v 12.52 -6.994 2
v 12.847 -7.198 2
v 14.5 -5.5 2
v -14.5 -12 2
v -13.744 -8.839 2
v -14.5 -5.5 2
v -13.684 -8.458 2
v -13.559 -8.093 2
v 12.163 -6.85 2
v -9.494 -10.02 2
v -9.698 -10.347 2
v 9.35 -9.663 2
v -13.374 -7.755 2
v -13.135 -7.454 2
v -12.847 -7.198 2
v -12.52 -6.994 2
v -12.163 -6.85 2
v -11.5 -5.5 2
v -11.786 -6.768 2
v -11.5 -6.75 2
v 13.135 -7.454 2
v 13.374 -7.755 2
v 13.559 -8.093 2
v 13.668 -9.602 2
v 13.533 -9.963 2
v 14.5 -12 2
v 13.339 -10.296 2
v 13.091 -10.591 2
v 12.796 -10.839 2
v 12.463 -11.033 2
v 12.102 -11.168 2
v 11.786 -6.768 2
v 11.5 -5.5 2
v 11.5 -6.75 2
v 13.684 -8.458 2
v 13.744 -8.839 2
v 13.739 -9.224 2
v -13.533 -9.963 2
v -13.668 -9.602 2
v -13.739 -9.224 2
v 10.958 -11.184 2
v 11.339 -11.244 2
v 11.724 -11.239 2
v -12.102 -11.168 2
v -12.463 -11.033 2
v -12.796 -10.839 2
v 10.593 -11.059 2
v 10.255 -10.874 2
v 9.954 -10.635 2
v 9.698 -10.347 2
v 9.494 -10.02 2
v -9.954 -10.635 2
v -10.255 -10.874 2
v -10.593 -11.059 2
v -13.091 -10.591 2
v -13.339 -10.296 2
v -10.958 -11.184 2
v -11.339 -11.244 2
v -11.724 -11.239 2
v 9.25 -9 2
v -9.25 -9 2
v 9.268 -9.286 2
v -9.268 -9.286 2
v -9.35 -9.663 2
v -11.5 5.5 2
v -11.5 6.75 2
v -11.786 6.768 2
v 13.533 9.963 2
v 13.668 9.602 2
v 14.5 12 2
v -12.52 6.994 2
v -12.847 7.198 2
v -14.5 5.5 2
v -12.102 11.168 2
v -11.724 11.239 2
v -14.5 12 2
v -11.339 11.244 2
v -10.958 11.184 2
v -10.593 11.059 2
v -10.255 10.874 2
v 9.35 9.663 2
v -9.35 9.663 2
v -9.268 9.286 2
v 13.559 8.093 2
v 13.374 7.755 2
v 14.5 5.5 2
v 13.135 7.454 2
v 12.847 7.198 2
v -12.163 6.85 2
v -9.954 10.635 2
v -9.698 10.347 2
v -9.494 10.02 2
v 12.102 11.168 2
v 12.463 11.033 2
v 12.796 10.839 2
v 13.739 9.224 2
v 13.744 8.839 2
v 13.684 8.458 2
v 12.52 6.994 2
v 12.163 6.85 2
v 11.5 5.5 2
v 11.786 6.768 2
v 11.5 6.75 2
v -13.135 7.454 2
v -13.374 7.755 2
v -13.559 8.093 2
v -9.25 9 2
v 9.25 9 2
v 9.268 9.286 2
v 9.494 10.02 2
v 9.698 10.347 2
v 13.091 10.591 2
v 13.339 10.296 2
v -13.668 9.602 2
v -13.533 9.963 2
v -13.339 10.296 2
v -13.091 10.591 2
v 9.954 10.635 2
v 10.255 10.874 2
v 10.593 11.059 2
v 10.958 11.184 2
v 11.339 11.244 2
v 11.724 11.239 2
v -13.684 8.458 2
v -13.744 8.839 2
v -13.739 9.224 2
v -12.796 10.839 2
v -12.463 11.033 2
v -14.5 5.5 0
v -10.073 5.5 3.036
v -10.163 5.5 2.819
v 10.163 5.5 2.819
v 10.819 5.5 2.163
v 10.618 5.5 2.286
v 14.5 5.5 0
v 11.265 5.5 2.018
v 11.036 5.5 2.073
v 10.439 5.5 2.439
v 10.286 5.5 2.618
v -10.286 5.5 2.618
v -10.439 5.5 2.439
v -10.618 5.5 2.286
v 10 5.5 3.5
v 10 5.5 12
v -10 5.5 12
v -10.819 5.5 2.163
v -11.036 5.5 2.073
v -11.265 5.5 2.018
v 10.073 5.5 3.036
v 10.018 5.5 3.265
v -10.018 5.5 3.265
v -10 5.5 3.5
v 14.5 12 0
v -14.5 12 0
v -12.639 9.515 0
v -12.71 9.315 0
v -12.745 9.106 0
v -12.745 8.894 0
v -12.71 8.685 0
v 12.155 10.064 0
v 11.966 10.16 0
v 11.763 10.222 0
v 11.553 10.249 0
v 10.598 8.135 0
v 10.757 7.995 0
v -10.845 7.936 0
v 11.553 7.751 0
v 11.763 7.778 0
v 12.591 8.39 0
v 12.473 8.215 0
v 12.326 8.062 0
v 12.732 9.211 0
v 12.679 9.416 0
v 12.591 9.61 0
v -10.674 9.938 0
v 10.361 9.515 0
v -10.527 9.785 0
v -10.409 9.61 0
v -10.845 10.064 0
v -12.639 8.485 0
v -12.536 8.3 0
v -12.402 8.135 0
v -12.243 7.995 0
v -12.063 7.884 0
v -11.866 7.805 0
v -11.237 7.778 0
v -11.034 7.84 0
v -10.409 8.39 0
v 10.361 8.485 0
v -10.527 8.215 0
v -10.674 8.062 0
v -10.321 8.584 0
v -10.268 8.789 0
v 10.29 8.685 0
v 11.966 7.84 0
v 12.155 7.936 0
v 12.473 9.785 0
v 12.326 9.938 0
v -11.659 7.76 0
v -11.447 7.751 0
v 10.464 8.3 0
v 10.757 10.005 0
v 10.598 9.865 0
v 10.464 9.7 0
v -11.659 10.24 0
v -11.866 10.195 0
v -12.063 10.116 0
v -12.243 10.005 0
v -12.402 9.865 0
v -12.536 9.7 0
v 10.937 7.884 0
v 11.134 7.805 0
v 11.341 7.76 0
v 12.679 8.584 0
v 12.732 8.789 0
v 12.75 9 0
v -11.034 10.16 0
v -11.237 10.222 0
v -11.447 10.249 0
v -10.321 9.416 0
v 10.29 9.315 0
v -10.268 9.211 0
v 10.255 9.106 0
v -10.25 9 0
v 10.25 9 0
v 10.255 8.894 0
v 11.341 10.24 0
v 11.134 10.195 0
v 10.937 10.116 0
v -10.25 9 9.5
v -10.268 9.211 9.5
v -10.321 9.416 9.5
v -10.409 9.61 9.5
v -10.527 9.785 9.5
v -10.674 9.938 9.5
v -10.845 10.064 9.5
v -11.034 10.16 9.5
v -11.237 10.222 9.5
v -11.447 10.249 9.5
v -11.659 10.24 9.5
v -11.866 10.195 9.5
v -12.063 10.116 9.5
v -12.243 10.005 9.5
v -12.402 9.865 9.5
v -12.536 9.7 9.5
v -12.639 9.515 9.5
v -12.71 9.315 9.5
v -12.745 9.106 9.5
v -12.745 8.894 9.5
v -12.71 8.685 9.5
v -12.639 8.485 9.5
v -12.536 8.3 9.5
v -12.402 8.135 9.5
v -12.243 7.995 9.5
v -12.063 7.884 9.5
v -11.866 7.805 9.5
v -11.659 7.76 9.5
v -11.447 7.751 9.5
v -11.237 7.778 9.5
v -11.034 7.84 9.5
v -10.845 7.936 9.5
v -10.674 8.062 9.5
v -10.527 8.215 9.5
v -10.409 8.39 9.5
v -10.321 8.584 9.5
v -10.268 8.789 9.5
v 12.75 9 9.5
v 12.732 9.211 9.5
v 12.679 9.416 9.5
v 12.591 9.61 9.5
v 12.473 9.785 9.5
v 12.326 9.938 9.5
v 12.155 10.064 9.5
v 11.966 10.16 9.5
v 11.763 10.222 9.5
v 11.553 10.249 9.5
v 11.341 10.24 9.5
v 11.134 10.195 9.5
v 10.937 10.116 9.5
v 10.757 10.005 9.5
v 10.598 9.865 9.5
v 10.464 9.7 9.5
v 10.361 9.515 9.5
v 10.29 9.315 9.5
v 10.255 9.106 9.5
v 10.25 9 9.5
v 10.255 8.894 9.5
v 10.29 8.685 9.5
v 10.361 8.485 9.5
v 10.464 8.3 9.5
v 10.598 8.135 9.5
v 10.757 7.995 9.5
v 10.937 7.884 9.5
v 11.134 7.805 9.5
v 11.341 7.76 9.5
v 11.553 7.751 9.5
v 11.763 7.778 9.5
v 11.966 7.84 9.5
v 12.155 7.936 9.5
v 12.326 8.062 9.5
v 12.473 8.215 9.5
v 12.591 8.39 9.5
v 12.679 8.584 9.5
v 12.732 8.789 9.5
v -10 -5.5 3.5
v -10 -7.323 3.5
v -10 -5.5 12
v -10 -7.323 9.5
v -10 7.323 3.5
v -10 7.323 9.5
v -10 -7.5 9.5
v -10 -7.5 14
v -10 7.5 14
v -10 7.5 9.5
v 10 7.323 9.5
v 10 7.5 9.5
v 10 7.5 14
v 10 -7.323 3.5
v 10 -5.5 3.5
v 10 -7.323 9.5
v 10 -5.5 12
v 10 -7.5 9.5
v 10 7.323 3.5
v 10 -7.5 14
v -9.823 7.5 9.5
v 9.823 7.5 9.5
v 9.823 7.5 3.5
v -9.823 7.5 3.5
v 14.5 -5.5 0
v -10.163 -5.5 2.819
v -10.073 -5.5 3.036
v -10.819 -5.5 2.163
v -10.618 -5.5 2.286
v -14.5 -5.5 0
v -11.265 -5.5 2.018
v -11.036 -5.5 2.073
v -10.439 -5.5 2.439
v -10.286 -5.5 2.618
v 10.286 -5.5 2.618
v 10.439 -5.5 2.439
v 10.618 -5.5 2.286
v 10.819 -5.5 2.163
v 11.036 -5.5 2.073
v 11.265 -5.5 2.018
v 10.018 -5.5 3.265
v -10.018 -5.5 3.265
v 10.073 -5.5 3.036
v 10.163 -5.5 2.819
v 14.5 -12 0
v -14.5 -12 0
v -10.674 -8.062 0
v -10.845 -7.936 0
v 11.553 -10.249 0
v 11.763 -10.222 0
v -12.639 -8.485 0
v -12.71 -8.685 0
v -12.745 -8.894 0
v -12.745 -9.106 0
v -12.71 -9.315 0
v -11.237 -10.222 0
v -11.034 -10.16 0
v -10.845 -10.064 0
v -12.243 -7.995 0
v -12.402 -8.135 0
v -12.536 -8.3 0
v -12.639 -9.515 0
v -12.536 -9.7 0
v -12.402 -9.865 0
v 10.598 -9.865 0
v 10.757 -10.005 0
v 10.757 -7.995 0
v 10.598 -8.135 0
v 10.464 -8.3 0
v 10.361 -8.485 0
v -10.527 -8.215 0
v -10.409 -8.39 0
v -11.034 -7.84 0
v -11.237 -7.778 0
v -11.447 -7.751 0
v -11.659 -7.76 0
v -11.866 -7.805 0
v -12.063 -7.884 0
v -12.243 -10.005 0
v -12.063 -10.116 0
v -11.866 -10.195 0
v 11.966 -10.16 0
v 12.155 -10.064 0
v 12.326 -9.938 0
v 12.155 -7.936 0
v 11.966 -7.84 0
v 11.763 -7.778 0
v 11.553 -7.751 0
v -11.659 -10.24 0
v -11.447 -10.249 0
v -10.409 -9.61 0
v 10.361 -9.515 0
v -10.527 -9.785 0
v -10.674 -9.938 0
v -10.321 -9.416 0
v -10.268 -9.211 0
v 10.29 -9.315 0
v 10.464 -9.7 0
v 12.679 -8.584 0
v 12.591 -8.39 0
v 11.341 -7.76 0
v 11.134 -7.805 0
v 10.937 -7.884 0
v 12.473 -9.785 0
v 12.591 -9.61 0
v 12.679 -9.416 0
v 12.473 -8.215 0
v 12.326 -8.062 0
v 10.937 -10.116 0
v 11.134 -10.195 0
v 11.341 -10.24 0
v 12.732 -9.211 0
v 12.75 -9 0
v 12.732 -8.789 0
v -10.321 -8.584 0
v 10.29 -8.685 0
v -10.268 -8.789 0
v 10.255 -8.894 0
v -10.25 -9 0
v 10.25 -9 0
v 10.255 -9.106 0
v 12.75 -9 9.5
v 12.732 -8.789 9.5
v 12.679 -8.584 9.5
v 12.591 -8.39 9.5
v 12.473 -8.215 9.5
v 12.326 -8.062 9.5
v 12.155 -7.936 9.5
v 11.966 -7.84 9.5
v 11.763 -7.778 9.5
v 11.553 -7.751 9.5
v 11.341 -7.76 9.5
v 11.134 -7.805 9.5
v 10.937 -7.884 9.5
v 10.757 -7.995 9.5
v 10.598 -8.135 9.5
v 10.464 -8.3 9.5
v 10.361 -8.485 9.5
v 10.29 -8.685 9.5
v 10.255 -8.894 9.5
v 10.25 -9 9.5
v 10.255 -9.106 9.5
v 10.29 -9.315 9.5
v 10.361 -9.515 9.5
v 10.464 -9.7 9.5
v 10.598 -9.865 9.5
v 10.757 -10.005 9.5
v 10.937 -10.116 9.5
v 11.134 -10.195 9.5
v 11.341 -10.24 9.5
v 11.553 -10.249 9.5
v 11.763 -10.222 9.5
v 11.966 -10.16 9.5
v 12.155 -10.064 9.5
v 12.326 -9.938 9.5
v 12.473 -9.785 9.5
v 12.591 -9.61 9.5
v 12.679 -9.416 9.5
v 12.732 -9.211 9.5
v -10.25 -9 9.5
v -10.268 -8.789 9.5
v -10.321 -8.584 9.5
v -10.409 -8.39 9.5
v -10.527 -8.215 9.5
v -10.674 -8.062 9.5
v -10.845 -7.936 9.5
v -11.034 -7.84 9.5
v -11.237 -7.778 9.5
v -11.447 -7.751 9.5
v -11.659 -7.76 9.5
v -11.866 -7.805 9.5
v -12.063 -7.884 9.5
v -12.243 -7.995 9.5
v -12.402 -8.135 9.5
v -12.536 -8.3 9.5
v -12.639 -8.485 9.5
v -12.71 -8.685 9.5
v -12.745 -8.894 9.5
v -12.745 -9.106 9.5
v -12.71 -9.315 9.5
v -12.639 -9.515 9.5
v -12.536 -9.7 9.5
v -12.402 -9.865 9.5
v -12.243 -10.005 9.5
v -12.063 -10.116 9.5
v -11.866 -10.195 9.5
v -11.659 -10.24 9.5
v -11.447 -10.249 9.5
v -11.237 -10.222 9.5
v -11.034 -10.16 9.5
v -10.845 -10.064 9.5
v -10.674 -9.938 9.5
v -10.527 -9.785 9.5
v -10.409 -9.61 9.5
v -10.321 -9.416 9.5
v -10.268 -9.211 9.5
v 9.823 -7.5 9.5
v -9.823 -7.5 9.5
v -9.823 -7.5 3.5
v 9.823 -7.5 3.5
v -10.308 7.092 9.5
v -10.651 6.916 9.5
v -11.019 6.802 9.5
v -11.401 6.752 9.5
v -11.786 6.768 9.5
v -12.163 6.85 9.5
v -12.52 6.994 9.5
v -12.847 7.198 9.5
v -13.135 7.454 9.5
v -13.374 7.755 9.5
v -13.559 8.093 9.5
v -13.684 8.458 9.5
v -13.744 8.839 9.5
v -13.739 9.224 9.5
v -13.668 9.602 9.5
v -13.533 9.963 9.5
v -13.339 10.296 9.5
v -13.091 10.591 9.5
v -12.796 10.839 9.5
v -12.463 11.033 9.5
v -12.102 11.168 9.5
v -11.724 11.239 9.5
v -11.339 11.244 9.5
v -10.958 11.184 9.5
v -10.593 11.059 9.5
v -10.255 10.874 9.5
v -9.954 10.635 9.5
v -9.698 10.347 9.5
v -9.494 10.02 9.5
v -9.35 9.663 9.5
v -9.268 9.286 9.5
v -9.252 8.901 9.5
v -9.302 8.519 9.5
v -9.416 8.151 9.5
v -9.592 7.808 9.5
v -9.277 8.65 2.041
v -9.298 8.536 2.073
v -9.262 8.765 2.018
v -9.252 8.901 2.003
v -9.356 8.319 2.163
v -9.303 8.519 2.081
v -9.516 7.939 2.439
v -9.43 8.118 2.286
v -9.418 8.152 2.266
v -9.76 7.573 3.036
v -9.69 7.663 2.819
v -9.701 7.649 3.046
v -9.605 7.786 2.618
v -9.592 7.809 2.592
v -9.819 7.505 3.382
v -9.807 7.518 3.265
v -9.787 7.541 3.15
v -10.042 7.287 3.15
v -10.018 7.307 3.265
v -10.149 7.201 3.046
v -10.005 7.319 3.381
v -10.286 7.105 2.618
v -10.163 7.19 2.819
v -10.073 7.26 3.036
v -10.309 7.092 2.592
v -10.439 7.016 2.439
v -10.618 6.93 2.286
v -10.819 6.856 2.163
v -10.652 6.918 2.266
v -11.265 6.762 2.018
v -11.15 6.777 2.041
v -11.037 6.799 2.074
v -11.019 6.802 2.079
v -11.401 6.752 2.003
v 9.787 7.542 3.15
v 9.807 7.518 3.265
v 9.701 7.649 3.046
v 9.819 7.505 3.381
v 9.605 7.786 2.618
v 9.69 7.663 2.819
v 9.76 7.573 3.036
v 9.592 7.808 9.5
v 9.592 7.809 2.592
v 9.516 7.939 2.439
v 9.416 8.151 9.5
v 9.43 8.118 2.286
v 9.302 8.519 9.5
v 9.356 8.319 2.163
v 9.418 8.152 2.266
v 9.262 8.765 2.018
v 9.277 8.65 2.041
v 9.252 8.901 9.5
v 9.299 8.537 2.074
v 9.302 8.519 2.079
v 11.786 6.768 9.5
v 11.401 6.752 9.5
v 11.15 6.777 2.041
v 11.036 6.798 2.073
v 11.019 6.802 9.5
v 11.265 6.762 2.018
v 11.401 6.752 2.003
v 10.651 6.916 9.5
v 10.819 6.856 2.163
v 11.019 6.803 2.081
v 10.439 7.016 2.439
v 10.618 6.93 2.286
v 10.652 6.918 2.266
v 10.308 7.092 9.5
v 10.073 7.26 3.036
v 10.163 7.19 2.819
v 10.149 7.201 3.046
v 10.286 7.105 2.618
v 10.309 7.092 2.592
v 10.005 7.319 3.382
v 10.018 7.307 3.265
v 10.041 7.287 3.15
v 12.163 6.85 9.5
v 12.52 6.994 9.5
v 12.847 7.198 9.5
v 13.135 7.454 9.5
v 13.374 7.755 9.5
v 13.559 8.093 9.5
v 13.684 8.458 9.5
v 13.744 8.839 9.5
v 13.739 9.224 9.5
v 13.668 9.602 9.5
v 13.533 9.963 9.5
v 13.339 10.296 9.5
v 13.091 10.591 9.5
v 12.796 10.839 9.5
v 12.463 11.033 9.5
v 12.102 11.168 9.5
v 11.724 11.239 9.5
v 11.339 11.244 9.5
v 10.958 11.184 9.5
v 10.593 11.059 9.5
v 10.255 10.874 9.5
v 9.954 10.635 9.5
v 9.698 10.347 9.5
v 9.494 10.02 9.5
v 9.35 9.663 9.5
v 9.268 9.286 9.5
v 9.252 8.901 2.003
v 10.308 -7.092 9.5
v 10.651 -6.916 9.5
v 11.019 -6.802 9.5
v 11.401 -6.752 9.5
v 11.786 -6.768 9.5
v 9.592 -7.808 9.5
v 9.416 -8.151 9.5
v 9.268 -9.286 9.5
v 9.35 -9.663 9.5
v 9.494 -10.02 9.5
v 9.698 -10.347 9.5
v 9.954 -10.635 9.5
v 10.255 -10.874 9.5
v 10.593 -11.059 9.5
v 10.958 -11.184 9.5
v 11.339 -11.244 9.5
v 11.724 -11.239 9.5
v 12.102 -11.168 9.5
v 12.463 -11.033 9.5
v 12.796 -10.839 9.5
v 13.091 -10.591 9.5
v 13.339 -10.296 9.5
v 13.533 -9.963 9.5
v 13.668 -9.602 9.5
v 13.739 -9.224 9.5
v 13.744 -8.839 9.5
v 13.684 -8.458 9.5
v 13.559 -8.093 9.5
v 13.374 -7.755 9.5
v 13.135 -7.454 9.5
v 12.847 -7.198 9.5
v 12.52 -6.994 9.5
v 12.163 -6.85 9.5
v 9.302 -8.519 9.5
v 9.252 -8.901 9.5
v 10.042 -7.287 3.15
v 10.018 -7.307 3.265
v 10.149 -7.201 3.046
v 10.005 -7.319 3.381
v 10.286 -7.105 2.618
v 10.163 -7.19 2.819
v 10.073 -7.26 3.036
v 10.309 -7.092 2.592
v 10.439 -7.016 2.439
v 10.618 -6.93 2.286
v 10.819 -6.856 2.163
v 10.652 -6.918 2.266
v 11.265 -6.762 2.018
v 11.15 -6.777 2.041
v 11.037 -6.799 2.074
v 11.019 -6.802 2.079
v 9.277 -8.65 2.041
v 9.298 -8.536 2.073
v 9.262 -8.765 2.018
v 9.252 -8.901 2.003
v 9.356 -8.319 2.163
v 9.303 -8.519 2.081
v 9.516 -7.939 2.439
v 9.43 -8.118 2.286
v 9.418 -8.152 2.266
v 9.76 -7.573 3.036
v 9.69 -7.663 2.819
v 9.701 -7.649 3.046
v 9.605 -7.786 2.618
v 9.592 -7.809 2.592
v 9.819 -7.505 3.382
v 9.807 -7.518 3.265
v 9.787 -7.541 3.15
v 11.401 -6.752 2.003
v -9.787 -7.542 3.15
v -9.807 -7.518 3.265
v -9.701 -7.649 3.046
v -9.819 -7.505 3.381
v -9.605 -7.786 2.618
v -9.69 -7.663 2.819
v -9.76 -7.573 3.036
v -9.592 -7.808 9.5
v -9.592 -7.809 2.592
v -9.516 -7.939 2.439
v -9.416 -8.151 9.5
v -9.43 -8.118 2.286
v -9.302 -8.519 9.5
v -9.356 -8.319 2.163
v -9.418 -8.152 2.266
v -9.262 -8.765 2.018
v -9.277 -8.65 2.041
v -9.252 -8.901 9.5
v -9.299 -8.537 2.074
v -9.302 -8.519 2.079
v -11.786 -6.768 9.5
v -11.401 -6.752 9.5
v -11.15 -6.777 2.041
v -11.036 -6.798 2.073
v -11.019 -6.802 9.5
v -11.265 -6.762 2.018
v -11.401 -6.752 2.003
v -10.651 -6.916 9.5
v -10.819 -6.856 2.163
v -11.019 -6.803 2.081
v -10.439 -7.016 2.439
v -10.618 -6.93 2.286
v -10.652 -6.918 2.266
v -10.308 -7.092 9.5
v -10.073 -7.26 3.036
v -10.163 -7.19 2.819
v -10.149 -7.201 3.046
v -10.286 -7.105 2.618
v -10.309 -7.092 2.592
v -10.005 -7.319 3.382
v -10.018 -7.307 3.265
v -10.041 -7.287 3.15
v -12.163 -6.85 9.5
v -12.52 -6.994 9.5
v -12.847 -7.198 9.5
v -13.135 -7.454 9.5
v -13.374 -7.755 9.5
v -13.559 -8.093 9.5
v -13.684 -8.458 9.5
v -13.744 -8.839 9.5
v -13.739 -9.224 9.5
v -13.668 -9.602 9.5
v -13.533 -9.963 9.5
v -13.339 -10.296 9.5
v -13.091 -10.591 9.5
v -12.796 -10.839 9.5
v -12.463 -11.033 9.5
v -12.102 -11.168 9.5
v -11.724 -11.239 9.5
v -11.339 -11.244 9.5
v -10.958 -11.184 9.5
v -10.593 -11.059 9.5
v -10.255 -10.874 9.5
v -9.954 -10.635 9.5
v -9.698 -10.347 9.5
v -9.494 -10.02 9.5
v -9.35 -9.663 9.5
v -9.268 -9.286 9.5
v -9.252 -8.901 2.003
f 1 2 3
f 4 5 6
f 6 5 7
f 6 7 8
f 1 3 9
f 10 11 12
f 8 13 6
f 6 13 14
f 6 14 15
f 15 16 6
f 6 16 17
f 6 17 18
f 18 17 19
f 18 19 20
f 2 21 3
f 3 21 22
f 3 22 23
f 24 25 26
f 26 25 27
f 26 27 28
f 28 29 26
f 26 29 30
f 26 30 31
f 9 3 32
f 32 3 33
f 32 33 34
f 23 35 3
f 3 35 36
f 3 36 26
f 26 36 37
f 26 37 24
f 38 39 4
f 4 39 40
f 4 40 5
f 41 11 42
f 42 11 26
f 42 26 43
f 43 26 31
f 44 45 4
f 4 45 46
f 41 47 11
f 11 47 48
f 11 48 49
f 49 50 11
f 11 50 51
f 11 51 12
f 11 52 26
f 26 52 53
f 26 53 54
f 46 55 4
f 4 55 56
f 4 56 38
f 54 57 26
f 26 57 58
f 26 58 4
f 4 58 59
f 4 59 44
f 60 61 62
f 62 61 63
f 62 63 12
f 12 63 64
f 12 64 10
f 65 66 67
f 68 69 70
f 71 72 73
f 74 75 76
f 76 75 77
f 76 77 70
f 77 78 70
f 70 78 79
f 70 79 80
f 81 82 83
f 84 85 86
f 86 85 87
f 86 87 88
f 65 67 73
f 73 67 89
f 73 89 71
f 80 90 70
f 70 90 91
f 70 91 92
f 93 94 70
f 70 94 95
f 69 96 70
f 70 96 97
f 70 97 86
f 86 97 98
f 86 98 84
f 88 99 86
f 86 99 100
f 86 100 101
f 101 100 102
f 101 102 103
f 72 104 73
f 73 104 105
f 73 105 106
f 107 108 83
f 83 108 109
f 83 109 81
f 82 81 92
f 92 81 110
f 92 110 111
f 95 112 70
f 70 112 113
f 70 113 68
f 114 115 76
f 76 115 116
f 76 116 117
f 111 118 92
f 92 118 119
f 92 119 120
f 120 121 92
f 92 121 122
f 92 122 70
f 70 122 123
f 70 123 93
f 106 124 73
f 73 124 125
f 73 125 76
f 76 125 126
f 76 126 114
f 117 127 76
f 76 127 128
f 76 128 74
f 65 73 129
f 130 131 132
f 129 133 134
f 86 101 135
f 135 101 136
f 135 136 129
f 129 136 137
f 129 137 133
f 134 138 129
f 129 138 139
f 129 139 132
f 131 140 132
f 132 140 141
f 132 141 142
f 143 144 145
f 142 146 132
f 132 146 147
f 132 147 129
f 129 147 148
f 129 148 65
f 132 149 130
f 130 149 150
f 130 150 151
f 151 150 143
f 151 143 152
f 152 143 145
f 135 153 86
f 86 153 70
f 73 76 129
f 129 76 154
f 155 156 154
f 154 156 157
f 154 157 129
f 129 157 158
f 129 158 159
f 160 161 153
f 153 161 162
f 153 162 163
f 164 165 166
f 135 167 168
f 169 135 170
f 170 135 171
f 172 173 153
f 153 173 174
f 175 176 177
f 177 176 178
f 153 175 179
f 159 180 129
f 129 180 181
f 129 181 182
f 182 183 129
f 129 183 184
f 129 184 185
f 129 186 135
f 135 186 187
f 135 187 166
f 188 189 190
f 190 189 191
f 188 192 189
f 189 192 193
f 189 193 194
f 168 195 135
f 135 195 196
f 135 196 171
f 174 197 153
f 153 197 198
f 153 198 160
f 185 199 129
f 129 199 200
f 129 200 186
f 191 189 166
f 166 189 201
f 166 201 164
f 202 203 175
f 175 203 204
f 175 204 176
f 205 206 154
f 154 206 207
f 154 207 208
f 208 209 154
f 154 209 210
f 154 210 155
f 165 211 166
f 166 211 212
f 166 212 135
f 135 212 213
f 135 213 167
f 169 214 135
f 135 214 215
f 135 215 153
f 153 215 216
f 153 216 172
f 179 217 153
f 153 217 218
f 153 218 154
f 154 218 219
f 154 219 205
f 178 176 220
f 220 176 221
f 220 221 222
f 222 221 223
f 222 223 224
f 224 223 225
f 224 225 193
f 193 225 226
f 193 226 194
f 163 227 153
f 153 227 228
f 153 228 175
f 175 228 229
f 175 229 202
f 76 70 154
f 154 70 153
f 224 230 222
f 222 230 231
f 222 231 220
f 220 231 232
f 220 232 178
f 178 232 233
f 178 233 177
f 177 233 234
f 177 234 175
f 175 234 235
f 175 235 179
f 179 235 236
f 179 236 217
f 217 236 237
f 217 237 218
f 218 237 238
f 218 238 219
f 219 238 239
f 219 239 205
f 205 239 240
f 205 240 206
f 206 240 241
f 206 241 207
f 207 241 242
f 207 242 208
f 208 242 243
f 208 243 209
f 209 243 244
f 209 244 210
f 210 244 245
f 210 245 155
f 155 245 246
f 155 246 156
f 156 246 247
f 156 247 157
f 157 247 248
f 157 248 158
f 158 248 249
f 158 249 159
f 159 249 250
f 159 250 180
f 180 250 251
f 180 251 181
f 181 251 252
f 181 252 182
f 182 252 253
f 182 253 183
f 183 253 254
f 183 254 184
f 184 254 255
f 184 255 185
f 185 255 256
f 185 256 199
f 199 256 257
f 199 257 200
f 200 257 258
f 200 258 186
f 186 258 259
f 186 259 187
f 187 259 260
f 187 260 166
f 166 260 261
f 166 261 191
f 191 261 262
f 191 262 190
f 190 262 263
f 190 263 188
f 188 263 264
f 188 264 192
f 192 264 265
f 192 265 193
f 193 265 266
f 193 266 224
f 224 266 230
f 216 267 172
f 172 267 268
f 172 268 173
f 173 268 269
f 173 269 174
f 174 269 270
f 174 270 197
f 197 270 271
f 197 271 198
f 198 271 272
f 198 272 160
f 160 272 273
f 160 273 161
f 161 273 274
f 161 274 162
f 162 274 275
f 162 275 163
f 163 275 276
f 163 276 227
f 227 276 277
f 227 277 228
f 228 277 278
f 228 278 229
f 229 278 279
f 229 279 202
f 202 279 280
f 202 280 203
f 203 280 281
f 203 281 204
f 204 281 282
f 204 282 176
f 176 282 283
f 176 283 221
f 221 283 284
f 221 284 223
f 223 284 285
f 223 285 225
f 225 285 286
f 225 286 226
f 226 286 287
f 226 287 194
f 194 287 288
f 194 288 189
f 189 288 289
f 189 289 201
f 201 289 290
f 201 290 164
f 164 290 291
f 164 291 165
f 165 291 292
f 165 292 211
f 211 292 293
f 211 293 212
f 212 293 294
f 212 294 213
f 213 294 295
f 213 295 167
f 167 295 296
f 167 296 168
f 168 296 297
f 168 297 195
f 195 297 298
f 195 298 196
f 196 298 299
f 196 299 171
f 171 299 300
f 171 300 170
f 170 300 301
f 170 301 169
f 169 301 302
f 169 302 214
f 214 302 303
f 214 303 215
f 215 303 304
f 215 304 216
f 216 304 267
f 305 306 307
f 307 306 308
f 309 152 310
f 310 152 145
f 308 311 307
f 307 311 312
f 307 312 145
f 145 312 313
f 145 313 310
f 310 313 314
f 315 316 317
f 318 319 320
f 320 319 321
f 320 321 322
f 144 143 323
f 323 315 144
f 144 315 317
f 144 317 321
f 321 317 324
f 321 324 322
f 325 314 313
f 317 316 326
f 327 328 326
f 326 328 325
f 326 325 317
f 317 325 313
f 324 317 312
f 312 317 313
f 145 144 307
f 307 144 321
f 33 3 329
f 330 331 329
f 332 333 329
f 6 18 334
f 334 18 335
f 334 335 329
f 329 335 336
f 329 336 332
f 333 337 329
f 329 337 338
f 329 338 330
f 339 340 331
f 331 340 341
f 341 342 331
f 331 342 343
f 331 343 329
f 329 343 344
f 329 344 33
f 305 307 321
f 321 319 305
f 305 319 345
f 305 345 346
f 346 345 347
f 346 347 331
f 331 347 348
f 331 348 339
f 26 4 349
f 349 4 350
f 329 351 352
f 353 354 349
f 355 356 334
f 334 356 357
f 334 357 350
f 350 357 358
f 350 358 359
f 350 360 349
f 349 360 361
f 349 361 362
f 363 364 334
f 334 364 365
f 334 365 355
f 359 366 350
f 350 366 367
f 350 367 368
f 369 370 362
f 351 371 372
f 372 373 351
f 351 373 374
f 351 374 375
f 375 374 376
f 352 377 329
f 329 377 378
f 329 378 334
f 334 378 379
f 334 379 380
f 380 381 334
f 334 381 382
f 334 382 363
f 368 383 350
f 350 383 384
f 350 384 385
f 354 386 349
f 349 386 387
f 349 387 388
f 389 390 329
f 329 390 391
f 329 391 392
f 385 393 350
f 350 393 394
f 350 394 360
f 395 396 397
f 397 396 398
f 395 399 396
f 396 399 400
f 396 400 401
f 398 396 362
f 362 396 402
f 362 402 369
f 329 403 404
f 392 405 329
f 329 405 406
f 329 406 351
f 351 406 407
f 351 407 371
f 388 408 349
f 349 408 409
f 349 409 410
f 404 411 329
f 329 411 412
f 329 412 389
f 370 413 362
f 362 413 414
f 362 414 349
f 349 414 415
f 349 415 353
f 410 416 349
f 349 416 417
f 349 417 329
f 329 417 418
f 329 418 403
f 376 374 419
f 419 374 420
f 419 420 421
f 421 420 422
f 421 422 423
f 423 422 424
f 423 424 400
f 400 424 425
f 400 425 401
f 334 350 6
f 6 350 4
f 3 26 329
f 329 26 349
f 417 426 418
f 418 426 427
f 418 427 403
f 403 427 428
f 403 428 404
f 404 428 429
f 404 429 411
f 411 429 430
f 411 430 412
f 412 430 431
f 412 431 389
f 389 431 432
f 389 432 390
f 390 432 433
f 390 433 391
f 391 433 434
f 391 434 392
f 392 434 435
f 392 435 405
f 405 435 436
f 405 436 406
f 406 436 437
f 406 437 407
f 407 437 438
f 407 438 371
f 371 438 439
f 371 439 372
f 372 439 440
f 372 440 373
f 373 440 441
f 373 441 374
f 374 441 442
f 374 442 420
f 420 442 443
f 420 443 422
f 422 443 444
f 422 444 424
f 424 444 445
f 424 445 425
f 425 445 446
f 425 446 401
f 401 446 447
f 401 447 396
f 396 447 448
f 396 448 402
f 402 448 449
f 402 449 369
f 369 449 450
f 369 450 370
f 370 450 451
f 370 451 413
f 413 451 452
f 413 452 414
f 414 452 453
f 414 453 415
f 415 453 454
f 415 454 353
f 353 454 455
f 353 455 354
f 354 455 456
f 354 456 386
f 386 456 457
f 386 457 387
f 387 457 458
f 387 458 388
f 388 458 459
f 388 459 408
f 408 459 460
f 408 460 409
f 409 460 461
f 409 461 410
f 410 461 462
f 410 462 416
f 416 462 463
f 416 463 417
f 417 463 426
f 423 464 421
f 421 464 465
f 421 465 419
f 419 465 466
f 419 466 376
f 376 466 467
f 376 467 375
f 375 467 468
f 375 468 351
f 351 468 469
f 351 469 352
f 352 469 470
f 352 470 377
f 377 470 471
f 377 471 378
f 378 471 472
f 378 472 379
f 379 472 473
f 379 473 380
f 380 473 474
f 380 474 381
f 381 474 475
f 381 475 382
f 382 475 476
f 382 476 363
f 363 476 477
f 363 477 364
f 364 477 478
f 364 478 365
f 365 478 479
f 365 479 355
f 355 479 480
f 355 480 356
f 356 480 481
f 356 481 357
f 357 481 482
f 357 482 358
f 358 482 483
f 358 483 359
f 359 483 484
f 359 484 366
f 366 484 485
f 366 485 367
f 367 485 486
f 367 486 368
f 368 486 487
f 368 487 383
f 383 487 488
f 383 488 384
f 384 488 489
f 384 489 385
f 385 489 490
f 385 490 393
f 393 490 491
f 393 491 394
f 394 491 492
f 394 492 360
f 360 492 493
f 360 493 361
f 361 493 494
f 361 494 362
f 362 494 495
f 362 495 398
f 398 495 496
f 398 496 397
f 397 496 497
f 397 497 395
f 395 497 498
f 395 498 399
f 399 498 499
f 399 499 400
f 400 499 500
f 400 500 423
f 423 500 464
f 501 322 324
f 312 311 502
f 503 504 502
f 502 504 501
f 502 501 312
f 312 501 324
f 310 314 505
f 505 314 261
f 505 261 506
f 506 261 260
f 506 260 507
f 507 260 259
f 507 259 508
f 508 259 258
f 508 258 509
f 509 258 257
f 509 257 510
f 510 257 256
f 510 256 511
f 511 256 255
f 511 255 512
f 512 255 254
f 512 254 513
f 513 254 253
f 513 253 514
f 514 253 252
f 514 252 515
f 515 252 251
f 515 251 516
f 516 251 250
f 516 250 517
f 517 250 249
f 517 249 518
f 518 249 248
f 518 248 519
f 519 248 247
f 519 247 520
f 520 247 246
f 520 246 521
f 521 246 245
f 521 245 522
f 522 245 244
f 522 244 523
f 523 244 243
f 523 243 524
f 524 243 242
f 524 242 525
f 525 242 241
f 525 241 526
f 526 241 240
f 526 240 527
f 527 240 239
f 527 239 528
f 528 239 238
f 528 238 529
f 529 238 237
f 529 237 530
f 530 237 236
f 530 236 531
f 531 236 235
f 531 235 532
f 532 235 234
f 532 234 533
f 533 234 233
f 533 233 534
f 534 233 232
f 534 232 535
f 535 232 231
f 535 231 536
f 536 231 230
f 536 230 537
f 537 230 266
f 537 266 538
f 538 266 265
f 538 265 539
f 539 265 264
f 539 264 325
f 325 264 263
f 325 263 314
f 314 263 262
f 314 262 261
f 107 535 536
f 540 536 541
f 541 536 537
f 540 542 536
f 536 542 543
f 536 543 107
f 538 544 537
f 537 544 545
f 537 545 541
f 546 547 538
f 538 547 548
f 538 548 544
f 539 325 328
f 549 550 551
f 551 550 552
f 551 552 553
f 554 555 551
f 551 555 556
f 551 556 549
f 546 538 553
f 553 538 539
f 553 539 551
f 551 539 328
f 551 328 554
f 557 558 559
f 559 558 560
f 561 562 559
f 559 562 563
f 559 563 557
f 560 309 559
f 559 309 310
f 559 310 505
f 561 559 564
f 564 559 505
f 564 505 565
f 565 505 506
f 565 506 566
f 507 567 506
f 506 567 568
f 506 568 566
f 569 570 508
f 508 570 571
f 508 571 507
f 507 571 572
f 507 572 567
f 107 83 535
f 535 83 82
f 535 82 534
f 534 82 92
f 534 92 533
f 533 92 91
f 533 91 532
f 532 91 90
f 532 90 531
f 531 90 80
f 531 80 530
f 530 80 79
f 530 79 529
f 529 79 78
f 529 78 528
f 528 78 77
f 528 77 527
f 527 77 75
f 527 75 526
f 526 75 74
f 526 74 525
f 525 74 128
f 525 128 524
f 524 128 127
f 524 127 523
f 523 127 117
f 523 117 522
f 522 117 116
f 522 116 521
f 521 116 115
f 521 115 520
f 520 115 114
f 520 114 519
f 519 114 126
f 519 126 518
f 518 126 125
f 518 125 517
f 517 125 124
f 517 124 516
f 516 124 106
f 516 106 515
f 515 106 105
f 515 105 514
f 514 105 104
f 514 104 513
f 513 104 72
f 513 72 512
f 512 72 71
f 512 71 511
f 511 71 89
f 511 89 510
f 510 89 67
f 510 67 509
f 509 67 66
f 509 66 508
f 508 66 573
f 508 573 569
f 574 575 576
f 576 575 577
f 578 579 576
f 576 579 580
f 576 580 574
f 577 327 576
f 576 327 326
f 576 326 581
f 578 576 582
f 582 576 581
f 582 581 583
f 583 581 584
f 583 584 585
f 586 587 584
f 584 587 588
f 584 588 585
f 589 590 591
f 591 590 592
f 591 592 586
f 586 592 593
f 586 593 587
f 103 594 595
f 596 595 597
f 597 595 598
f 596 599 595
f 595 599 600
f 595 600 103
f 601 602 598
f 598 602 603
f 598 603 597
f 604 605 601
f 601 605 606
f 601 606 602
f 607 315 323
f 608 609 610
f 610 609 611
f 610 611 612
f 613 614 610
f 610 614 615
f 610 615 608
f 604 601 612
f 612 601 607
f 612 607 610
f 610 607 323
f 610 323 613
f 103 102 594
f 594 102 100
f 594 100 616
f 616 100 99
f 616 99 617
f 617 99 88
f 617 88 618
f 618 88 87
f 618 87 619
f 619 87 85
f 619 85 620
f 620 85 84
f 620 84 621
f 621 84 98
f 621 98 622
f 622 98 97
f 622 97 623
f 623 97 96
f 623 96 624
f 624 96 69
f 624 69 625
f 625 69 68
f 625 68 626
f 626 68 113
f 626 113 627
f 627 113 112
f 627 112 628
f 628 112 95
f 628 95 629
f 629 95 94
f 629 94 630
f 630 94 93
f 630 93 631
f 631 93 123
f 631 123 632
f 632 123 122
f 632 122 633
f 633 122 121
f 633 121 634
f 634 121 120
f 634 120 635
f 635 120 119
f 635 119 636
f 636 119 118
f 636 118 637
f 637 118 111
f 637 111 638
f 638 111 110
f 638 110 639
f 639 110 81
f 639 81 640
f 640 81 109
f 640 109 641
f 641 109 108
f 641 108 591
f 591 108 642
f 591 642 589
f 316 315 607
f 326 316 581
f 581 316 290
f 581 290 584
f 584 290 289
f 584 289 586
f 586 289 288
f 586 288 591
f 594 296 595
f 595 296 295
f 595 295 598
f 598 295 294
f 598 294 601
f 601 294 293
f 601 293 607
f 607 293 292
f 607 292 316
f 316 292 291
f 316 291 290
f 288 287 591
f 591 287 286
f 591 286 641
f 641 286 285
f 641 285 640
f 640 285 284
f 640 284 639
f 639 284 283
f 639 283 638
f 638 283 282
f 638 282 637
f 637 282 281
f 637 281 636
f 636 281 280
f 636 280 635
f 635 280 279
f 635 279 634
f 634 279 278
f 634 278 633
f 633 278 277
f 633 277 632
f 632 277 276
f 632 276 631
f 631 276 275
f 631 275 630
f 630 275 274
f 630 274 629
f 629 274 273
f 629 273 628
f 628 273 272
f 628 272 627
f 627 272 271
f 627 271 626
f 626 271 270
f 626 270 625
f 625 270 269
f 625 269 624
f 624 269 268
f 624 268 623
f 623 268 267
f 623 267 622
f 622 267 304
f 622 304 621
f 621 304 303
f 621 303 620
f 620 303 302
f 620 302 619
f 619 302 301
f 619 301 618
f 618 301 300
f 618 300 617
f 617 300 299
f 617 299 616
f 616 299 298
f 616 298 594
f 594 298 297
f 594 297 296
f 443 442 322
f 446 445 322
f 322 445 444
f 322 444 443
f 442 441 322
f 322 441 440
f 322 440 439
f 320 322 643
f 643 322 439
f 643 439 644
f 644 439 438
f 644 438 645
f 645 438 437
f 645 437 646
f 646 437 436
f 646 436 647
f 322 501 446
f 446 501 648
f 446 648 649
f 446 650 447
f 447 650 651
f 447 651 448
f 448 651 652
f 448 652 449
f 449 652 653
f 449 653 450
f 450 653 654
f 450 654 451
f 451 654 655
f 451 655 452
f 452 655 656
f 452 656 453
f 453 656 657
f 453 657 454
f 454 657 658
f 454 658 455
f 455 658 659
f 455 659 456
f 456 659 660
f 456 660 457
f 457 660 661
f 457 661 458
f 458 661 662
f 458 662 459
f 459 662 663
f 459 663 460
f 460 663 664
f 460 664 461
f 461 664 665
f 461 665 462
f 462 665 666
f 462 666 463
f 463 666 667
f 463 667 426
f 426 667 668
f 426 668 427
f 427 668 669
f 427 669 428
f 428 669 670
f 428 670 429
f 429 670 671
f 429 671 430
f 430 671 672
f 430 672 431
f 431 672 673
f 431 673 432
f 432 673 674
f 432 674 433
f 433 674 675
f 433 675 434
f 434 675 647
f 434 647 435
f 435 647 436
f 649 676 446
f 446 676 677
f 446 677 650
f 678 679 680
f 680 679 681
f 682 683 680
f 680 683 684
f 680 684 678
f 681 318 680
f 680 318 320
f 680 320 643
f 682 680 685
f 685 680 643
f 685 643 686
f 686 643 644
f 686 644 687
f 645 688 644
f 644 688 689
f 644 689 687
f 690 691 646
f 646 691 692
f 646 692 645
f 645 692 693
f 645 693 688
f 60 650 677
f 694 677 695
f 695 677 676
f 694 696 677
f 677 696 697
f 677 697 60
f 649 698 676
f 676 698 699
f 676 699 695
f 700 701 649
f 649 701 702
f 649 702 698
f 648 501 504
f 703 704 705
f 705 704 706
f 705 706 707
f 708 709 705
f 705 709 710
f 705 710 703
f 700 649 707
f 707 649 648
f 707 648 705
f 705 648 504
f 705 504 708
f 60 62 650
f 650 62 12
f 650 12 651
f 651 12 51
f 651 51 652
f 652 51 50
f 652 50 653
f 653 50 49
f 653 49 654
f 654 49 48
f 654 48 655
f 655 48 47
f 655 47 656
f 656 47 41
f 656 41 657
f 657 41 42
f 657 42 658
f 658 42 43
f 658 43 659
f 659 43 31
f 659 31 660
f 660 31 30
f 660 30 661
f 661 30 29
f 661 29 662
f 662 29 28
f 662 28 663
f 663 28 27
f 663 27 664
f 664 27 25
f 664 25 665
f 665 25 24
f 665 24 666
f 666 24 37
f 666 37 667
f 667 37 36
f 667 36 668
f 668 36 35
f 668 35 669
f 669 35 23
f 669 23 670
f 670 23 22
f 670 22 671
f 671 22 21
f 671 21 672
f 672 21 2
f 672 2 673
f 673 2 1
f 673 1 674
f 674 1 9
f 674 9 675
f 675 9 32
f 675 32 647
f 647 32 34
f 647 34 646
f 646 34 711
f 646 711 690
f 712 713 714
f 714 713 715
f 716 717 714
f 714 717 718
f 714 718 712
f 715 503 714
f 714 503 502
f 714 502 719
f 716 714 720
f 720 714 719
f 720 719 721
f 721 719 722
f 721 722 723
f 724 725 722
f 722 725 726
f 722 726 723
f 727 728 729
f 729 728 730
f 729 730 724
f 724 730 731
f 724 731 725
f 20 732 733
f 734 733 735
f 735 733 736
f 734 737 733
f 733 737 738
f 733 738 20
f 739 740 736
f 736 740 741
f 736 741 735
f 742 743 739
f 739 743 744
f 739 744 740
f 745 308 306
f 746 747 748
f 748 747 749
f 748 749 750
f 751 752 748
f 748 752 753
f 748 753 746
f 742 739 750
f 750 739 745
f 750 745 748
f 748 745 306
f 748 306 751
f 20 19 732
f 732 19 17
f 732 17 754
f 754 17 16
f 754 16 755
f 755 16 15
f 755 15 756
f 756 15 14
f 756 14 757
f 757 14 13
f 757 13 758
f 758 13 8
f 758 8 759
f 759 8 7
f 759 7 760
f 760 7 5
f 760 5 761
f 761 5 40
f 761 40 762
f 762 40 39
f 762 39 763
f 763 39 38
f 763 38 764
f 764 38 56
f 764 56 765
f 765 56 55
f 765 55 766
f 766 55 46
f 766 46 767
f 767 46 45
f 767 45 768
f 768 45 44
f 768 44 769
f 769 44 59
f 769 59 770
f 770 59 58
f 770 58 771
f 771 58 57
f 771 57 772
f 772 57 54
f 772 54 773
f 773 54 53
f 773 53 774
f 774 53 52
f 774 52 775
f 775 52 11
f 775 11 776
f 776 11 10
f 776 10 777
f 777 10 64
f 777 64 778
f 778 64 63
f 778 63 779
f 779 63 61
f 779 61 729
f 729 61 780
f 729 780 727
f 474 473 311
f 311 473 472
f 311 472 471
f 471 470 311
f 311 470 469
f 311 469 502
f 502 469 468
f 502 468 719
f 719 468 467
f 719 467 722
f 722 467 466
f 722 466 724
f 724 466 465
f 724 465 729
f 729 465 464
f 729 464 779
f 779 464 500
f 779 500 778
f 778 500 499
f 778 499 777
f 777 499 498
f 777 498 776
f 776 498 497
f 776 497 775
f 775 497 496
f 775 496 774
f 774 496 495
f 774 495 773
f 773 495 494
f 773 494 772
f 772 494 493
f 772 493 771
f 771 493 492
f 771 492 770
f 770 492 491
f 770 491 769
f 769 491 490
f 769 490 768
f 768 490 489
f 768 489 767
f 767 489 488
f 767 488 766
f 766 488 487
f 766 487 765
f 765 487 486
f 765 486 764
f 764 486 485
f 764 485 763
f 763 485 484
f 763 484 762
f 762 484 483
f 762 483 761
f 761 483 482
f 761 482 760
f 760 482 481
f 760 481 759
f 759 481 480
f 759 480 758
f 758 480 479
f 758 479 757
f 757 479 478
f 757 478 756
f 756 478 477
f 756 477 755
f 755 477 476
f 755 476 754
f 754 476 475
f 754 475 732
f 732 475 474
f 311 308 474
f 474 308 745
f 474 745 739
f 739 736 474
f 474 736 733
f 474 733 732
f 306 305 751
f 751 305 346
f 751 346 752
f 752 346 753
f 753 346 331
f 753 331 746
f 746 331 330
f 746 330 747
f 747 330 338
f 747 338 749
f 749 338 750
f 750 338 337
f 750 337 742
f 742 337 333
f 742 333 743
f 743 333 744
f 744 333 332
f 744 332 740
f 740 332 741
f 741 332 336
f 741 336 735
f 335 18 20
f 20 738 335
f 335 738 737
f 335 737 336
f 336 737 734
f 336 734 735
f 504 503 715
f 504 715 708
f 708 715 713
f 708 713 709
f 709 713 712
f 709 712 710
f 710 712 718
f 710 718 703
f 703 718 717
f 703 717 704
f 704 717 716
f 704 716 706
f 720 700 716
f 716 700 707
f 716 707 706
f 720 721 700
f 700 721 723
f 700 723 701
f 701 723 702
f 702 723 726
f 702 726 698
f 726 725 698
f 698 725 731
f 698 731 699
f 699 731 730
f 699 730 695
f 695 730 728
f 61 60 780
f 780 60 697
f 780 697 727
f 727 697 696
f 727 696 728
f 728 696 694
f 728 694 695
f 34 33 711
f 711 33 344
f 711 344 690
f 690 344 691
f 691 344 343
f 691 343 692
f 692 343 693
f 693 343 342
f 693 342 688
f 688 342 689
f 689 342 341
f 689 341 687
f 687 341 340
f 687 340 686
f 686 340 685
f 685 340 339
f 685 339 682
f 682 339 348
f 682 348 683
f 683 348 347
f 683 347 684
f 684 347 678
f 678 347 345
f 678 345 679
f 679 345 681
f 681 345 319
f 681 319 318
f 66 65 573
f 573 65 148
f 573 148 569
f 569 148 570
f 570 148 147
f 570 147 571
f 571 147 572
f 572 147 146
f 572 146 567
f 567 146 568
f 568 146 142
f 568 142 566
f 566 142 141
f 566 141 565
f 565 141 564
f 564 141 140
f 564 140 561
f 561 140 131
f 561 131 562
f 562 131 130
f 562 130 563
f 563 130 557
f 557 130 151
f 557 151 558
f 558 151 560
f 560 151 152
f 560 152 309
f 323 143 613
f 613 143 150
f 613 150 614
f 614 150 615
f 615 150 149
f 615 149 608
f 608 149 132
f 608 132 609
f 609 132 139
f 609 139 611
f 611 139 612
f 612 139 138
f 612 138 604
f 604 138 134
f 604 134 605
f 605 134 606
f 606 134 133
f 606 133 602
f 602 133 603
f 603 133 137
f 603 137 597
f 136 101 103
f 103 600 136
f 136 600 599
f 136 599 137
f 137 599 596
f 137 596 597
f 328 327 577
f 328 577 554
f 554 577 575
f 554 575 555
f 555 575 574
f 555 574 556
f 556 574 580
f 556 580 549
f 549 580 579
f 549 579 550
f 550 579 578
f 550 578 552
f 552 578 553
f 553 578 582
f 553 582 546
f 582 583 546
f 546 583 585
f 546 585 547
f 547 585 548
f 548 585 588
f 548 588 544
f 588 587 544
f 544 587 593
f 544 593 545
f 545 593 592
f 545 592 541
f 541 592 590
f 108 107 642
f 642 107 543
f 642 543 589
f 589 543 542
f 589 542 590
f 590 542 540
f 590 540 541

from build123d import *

# Parameters (mm, degrees)
CROQUIS1_W                   = 29
CROQUIS1_H                   = 24
SALIENTE_EXTRUIR1_DEPTH      = 2
CROQUIS2_W                   = 29
CROQUIS2_H                   = 11
CORTAR_EXTRUIR1_DEPTH        = 2
CROQUIS3_R                   = 1.25
CORTAR_EXTRUIR2_DEPTH        = 2
SIMETR_A5_COPY_1_SKETCH_R    = 1.25
SIMETR_A5_COPY_1_DEPTH       = 2
CROQUIS4_W                   = 20
CROQUIS4_H                   = 2
SALIENTE_EXTRUIR2_DEPTH      = 12
CROQUIS6_W                   = 20
CROQUIS6_H                   = 2
SALIENTE_EXTRUIR4_DEPTH      = 12
CROQUIS5_W                   = 20
CROQUIS5_H                   = 2
SALIENTE_EXTRUIR5_DEPTH      = 11
CROQUIS7_R                   = 2.25
CROQUIS7_R_2                 = 1.25
EXTRUIR_L_MINA1_DEPTH        = 7.5
SIMETR_A10_COPY_1_SKETCH_R   = 2.25
SIMETR_A10_COPY_1_SKETCH_R_2 = 1.25
SIMETR_A10_COPY_1_DEPTH      = 7.5
REDONDEO1_R                  = 1.5


with BuildPart() as part:
    # Croquis1 → Saliente-Extruir1 (new body)
    with BuildSketch(Plane.XY):
        Rectangle(CROQUIS1_W, CROQUIS1_H)
    extrude(amount=SALIENTE_EXTRUIR1_DEPTH)

    # Croquis2 → Cortar-Extruir1 (cut)
    with BuildSketch(Plane.XY.offset(2)):
        Rectangle(CROQUIS2_W, CROQUIS2_H)
    extrude(amount=-CORTAR_EXTRUIR1_DEPTH, mode=Mode.SUBTRACT)

    # Croquis3 → Cortar-Extruir2 (cut)
    with BuildSketch(Plane.XY.offset(2)):
        with Locations((-11.5, 9)):
            Circle(CROQUIS3_R)
    cortar_extruir2 = extrude(amount=-CORTAR_EXTRUIR2_DEPTH, mode=Mode.SUBTRACT)

    # Simetría2: Cortar-Extruir2 across plane
    add(cortar_extruir2.mirror(Plane(origin=(0, 0, 0), x_dir=(0, 0, 1), z_dir=(1, 0, 0))), mode=Mode.SUBTRACT)

    # Simetría5: Cortar-Extruir2 across plane
    add(cortar_extruir2.mirror(Plane.ZX), mode=Mode.SUBTRACT)

    # Simetría5 copy 1 sketch → Simetría5 copy 1 (cut)
    with BuildSketch(Plane(origin=(0, 0, 2), x_dir=(-1, 0, 0), z_dir=(0, 0, 1))):
        with Locations((-11.5, 9)):
            Circle(SIMETR_A5_COPY_1_SKETCH_R)
    extrude(amount=-SIMETR_A5_COPY_1_DEPTH, mode=Mode.SUBTRACT)

    # Croquis4 → Saliente-Extruir2 (add)
    with BuildSketch(Plane.XY.offset(2)):
        with Locations((0, 6.5)):
            Rectangle(CROQUIS4_W, CROQUIS4_H)
    extrude(amount=SALIENTE_EXTRUIR2_DEPTH)

    # Croquis6 → Saliente-Extruir4 (add)
    with BuildSketch(Plane.XY.offset(2)):
        with Locations((0, -6.5)):
            Rectangle(CROQUIS6_W, CROQUIS6_H)
    extrude(amount=SALIENTE_EXTRUIR4_DEPTH)

    # Croquis5 → Saliente-Extruir5 (add)
    with BuildSketch(Plane(origin=(0, 5.5, 0), x_dir=(-1, 0, 0), z_dir=(0, -1, 0))):
        with Locations((0, -13)):
            Rectangle(CROQUIS5_W, CROQUIS5_H)
    extrude(amount=SALIENTE_EXTRUIR5_DEPTH)

    # Croquis7 → Extruir-Lámina1 (add)
    with BuildSketch(Plane.XY.offset(2)):
        with Locations((-11.5, 9)):
            Circle(CROQUIS7_R)
        with Locations((-11.5, 9)):
            Circle(CROQUIS7_R_2, mode=Mode.SUBTRACT)
    extruir_l_mina1 = extrude(amount=EXTRUIR_L_MINA1_DEPTH)

    # Simetría8: Extruir-Lámina1 across plane
    add(extruir_l_mina1.mirror(Plane(origin=(0, 0, 0), x_dir=(0, 0, 1), z_dir=(1, 0, 0))))

    # Simetría10: Extruir-Lámina1 across plane
    add(extruir_l_mina1.mirror(Plane.ZX))

    # Simetría10 copy 1 sketch → Simetría10 copy 1 (add)
    with BuildSketch(Plane(origin=(0, 0, 2), x_dir=(-1, 0, 0), z_dir=(0, 0, 1))):
        with Locations((-11.5, 9)):
            Circle(SIMETR_A10_COPY_1_SKETCH_R)
        with Locations((-11.5, 9)):
            Circle(SIMETR_A10_COPY_1_SKETCH_R_2, mode=Mode.SUBTRACT)
    extrude(amount=SIMETR_A10_COPY_1_DEPTH)

    # Redondeo1
    redondeo1_edges = [part.edges().sort_by_distance(p)[0] for p in [
        (10, 6.411474508, 2),
        (-10, -6.411474508, 2),
        (-10, 6.411474508, 2),
        (0, 7.5, 2),
        (10, -6.411474508, 2),
        (0, -7.5, 2),
    ]]
    fillet(redondeo1_edges, radius=REDONDEO1_R)


solid = part.part
